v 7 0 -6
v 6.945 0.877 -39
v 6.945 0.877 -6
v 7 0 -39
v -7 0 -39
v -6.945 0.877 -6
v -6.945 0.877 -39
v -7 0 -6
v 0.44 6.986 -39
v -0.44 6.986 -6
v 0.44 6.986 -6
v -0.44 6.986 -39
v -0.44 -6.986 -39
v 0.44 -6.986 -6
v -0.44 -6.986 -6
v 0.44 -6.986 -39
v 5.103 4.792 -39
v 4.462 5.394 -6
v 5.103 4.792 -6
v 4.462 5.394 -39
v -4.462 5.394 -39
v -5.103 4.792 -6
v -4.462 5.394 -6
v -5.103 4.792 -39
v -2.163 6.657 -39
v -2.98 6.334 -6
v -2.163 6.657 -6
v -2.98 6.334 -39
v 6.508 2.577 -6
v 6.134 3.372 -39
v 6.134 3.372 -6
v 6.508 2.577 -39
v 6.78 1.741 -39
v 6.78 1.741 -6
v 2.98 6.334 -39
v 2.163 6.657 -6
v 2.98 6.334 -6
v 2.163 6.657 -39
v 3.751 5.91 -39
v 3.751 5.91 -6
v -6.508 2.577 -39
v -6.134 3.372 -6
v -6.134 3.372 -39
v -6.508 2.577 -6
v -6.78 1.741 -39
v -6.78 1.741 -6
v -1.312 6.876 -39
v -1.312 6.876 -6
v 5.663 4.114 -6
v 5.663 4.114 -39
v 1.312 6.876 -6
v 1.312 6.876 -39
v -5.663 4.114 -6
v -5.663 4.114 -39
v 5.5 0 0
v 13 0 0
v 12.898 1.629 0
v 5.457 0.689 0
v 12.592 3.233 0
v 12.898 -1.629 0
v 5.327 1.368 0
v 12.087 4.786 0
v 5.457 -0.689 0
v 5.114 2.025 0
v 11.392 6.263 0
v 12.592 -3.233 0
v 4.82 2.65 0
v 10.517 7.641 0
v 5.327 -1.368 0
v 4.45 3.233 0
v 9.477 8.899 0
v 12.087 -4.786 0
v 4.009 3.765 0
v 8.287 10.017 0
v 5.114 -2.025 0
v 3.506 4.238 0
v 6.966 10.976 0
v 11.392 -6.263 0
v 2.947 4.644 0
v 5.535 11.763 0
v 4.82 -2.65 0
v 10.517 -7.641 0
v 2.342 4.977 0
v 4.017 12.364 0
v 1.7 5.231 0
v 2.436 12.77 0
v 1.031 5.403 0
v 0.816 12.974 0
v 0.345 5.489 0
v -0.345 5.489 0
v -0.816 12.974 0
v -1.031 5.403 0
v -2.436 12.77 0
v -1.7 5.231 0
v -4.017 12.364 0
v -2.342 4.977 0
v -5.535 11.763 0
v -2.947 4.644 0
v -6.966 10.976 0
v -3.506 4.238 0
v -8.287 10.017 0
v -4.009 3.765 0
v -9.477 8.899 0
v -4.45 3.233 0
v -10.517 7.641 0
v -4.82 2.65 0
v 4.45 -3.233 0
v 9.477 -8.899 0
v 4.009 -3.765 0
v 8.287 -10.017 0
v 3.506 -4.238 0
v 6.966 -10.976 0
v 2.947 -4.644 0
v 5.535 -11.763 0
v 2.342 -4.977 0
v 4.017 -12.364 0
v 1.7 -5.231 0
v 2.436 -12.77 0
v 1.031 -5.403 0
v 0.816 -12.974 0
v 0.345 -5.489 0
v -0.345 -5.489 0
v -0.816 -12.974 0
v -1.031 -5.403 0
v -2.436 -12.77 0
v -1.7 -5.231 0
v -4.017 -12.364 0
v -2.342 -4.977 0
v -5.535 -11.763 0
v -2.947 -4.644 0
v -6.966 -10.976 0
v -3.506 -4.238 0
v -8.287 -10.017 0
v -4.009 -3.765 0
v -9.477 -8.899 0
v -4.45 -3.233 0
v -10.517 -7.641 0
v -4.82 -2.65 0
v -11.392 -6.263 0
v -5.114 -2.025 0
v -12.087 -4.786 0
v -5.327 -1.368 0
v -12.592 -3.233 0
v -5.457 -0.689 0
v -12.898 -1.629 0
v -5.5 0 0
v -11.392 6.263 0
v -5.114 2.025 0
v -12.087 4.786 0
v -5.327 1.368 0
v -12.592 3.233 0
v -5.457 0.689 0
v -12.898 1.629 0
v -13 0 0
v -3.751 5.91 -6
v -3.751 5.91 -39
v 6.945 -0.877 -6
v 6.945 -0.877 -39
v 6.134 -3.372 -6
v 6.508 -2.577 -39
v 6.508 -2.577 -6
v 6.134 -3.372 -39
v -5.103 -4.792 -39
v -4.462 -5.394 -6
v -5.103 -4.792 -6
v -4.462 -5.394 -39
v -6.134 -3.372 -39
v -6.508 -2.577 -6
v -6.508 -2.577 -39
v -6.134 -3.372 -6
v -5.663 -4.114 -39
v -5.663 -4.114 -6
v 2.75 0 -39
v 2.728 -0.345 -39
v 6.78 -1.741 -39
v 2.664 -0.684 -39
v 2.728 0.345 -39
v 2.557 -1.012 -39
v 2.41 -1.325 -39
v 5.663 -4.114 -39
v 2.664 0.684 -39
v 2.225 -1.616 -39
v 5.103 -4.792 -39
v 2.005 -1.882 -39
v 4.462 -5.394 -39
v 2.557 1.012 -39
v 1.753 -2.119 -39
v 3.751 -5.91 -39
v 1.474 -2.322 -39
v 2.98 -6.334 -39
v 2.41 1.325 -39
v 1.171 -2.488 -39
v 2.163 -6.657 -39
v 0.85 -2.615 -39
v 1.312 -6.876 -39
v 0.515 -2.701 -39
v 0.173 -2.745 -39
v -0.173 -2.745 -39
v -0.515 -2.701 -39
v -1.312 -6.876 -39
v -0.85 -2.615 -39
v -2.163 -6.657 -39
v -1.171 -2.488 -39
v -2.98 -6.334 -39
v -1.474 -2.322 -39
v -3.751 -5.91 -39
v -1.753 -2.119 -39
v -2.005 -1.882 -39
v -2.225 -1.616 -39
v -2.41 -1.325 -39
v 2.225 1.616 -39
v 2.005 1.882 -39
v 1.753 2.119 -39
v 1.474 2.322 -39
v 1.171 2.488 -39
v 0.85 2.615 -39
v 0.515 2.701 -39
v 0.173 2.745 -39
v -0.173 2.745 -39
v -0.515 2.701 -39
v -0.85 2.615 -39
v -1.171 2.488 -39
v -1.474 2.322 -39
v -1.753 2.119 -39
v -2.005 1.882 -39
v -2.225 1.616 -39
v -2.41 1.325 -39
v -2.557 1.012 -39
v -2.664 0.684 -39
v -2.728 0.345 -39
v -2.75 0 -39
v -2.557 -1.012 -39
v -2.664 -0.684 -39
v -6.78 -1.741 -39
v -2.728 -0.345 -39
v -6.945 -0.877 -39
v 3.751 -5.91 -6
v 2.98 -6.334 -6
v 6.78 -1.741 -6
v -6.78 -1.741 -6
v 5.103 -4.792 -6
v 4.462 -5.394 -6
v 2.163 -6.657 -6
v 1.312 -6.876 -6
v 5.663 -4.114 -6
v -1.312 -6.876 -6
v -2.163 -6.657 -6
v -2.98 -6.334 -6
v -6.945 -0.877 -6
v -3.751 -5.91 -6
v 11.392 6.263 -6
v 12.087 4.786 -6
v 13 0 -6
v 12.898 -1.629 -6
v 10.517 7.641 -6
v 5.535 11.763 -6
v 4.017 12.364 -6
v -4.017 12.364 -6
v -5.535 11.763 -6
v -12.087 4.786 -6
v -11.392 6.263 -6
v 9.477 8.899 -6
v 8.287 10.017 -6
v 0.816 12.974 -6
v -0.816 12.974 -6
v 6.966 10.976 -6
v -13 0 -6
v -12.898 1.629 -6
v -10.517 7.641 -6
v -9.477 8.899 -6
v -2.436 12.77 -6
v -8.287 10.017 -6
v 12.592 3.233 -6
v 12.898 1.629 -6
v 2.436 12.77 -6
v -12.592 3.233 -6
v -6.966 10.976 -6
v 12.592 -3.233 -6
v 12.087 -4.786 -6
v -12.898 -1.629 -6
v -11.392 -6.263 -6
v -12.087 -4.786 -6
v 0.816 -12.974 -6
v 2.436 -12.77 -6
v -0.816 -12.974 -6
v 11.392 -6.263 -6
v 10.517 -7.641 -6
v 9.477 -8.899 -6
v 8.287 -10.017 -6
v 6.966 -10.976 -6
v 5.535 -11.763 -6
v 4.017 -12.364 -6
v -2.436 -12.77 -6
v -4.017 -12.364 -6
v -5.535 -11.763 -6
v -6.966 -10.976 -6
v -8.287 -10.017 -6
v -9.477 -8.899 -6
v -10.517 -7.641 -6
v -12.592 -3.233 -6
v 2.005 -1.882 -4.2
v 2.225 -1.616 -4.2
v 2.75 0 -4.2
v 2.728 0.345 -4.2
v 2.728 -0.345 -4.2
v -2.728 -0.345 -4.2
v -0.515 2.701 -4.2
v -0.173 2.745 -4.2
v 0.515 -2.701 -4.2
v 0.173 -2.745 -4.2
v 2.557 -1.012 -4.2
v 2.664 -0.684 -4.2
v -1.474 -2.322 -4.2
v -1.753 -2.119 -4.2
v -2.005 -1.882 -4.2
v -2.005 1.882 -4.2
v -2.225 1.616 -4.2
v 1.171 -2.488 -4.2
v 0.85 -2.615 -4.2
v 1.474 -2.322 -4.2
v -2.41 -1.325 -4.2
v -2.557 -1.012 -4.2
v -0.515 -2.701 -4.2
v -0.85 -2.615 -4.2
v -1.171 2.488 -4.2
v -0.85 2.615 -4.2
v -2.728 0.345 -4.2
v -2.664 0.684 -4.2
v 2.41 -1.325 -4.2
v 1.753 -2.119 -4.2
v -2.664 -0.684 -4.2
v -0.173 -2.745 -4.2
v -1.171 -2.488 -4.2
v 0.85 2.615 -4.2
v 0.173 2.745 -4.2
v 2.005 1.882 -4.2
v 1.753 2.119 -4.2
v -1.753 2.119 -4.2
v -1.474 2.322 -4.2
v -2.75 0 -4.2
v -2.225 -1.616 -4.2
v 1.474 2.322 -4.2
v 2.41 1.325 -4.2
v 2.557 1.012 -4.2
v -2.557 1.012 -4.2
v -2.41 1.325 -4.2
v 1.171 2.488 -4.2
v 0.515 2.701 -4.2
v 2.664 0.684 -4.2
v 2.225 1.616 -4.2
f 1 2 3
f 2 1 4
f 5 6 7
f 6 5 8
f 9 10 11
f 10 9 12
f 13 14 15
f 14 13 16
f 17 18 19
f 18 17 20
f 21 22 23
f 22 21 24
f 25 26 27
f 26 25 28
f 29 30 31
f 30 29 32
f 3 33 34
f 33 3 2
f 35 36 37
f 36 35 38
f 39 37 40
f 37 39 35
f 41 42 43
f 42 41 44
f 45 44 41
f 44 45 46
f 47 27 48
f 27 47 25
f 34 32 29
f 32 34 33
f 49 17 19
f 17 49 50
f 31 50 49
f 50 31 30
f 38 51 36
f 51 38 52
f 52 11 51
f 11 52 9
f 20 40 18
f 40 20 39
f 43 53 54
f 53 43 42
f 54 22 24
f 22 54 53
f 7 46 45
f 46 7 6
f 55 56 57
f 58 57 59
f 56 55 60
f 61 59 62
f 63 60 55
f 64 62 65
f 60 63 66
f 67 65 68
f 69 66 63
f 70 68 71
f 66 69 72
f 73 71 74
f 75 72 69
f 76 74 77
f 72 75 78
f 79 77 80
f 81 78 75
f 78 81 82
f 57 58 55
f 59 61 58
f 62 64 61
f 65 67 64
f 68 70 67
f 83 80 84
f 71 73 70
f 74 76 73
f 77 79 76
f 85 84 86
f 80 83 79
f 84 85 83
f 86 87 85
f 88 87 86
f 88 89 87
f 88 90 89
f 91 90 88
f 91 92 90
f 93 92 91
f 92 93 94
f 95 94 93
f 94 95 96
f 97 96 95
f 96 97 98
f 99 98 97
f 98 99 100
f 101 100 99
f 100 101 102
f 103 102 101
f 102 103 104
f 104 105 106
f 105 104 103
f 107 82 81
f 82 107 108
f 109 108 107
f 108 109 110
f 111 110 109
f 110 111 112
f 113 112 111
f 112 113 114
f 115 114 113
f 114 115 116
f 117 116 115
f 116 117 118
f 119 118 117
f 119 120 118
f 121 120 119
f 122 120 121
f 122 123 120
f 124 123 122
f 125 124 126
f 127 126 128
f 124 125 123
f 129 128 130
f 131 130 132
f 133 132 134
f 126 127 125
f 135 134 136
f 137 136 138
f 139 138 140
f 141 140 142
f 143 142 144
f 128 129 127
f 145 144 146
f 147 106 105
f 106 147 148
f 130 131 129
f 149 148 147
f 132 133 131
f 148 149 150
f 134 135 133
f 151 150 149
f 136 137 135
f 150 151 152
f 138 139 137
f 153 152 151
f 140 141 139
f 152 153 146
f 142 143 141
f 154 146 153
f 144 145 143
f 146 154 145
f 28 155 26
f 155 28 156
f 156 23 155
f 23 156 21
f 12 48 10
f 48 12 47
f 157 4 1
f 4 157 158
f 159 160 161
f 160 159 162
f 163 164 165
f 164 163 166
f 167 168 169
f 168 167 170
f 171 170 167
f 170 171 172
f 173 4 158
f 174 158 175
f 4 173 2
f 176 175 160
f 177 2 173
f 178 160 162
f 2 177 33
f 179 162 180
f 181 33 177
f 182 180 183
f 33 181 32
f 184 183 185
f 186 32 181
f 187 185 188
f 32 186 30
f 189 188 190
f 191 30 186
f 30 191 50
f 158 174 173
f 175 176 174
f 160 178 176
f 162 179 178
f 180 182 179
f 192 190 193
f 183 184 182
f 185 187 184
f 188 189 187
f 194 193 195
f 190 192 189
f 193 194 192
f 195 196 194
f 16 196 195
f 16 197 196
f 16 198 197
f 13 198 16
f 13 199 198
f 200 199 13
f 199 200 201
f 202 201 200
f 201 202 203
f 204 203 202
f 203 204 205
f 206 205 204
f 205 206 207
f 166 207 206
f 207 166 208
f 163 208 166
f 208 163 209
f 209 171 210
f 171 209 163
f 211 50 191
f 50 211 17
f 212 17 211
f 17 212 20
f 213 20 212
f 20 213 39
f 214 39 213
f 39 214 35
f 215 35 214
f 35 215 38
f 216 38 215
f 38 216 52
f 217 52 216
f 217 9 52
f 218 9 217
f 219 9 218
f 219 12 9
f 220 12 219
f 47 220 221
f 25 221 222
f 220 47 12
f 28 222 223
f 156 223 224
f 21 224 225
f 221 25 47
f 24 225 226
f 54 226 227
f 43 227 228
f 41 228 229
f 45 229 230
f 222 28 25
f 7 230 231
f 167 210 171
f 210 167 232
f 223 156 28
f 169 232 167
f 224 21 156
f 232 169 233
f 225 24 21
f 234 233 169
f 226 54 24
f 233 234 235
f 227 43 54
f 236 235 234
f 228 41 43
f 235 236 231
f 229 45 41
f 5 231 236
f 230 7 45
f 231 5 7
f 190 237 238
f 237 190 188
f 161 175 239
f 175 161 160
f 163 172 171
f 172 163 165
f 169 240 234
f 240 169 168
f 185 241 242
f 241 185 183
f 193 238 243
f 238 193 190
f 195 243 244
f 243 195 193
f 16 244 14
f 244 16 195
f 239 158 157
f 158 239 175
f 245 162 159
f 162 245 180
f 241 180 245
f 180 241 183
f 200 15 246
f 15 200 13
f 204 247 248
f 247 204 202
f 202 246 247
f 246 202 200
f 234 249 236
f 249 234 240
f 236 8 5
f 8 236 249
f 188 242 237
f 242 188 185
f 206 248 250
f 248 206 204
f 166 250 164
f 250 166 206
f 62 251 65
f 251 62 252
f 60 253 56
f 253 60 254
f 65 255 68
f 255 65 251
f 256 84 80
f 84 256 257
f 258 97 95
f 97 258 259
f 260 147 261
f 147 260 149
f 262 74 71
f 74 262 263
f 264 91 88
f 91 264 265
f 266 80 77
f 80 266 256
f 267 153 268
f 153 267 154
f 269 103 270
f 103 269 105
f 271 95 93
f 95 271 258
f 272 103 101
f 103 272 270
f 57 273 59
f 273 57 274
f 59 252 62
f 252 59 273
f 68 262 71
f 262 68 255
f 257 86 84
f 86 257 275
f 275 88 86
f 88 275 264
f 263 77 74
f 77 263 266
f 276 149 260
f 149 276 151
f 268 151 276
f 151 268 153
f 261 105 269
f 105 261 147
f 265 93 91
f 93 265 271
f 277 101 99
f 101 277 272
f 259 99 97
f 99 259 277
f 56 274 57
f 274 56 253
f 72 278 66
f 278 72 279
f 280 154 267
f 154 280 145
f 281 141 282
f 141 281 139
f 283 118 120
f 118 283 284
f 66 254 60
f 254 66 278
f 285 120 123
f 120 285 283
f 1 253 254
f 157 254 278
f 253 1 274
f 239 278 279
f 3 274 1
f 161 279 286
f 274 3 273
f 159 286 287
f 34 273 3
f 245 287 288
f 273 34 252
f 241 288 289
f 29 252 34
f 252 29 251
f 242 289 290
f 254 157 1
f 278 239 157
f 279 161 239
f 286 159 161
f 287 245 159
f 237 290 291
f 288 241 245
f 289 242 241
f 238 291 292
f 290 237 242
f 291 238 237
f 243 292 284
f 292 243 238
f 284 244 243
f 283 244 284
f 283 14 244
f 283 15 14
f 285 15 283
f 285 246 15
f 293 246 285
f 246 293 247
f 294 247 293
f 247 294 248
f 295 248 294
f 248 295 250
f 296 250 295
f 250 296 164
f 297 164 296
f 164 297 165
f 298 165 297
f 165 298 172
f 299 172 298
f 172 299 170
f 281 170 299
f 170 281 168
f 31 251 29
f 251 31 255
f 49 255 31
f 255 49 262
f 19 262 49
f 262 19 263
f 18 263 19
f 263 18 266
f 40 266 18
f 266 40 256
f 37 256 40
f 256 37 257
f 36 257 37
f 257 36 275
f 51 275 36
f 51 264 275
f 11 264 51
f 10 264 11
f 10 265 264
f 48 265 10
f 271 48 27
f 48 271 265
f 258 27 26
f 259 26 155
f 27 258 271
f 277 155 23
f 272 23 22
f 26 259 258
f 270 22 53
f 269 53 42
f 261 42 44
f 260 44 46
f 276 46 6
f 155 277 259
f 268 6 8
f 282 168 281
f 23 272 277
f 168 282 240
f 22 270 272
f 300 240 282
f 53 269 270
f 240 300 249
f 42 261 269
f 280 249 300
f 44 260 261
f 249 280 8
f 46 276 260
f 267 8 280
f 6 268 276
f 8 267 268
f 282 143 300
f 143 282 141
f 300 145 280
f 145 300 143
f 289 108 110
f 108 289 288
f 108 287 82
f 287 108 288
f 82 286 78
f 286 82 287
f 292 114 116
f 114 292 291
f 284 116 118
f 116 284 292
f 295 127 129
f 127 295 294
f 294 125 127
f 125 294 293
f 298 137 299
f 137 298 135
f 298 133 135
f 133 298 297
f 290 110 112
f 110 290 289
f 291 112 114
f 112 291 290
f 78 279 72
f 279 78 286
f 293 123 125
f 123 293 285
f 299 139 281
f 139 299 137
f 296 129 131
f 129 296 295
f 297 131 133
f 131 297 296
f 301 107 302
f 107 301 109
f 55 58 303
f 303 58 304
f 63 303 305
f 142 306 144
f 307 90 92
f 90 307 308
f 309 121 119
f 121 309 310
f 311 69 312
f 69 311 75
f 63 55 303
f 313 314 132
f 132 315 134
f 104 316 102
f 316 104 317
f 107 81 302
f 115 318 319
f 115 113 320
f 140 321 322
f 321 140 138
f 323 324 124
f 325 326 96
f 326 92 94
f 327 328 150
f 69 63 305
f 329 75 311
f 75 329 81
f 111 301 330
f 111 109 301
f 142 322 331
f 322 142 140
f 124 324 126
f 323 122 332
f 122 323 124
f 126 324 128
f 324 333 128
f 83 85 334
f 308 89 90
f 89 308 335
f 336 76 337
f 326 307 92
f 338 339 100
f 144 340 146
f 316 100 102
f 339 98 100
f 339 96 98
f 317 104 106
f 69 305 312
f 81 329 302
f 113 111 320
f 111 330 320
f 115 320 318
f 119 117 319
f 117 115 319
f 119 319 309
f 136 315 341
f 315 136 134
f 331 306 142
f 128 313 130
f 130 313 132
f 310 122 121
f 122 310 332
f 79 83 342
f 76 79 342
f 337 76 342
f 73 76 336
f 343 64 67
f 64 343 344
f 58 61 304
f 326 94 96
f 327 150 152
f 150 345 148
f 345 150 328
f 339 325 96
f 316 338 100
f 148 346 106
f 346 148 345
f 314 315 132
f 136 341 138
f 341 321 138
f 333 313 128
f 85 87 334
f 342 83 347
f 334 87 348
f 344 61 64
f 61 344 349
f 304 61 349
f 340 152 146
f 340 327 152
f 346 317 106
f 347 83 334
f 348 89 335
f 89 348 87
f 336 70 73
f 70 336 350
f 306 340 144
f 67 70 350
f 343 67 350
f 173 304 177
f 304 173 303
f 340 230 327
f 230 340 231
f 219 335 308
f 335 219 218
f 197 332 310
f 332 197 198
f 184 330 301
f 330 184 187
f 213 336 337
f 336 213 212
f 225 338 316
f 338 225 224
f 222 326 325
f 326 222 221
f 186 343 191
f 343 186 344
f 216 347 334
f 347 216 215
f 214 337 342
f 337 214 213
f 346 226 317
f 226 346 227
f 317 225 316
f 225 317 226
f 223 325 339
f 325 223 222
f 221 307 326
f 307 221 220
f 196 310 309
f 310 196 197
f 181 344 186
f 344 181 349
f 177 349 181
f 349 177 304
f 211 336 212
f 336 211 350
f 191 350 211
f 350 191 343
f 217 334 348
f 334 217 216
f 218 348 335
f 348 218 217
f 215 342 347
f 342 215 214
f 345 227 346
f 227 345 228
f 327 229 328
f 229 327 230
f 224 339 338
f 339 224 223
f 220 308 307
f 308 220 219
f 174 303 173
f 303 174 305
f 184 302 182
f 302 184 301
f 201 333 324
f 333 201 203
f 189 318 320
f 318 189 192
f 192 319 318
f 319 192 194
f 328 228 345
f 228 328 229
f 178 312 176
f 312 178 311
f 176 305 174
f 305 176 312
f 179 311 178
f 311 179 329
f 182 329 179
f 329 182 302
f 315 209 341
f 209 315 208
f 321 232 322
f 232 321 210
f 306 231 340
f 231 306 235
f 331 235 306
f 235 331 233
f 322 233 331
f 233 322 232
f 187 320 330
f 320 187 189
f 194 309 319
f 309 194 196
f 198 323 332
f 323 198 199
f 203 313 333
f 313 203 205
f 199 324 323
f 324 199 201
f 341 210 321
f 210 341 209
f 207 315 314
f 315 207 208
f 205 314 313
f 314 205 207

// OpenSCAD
$fn = 50;


difference() {
	union() {
		translate(v = [0, 0, -39.0000000000]) {
			cylinder(h = 39, r = 7.0000000000);
		}
		translate(v = [0, 0, -6.0000000000]) {
			cylinder(h = 6, r = 13.0000000000);
		}
	}
	union() {
		translate(v = [0, 0, 0]) {
			rotate(a = [0, 0, 0]) {
				difference() {
					union() {
						#translate(v = [0, 0, -39.0000000000]) {
							cylinder(h = 39, r = 2.2500000000);
						}
						#translate(v = [0, 0, -4.2000000000]) {
							cylinder(h = 4.2000000000, r = 7.0000000000, r1 = 2.7500000000, r2 = 5.5000000000);
						}
						#translate(v = [0, 0, -39.0000000000]) {
							cylinder(h = 39, r = 2.7500000000);
						}
						#translate(v = [0, 0, -39.0000000000]) {
							cylinder(h = 39, r = 2.2500000000);
						}
					}
					union();
				}
			}
		}
	}
}
